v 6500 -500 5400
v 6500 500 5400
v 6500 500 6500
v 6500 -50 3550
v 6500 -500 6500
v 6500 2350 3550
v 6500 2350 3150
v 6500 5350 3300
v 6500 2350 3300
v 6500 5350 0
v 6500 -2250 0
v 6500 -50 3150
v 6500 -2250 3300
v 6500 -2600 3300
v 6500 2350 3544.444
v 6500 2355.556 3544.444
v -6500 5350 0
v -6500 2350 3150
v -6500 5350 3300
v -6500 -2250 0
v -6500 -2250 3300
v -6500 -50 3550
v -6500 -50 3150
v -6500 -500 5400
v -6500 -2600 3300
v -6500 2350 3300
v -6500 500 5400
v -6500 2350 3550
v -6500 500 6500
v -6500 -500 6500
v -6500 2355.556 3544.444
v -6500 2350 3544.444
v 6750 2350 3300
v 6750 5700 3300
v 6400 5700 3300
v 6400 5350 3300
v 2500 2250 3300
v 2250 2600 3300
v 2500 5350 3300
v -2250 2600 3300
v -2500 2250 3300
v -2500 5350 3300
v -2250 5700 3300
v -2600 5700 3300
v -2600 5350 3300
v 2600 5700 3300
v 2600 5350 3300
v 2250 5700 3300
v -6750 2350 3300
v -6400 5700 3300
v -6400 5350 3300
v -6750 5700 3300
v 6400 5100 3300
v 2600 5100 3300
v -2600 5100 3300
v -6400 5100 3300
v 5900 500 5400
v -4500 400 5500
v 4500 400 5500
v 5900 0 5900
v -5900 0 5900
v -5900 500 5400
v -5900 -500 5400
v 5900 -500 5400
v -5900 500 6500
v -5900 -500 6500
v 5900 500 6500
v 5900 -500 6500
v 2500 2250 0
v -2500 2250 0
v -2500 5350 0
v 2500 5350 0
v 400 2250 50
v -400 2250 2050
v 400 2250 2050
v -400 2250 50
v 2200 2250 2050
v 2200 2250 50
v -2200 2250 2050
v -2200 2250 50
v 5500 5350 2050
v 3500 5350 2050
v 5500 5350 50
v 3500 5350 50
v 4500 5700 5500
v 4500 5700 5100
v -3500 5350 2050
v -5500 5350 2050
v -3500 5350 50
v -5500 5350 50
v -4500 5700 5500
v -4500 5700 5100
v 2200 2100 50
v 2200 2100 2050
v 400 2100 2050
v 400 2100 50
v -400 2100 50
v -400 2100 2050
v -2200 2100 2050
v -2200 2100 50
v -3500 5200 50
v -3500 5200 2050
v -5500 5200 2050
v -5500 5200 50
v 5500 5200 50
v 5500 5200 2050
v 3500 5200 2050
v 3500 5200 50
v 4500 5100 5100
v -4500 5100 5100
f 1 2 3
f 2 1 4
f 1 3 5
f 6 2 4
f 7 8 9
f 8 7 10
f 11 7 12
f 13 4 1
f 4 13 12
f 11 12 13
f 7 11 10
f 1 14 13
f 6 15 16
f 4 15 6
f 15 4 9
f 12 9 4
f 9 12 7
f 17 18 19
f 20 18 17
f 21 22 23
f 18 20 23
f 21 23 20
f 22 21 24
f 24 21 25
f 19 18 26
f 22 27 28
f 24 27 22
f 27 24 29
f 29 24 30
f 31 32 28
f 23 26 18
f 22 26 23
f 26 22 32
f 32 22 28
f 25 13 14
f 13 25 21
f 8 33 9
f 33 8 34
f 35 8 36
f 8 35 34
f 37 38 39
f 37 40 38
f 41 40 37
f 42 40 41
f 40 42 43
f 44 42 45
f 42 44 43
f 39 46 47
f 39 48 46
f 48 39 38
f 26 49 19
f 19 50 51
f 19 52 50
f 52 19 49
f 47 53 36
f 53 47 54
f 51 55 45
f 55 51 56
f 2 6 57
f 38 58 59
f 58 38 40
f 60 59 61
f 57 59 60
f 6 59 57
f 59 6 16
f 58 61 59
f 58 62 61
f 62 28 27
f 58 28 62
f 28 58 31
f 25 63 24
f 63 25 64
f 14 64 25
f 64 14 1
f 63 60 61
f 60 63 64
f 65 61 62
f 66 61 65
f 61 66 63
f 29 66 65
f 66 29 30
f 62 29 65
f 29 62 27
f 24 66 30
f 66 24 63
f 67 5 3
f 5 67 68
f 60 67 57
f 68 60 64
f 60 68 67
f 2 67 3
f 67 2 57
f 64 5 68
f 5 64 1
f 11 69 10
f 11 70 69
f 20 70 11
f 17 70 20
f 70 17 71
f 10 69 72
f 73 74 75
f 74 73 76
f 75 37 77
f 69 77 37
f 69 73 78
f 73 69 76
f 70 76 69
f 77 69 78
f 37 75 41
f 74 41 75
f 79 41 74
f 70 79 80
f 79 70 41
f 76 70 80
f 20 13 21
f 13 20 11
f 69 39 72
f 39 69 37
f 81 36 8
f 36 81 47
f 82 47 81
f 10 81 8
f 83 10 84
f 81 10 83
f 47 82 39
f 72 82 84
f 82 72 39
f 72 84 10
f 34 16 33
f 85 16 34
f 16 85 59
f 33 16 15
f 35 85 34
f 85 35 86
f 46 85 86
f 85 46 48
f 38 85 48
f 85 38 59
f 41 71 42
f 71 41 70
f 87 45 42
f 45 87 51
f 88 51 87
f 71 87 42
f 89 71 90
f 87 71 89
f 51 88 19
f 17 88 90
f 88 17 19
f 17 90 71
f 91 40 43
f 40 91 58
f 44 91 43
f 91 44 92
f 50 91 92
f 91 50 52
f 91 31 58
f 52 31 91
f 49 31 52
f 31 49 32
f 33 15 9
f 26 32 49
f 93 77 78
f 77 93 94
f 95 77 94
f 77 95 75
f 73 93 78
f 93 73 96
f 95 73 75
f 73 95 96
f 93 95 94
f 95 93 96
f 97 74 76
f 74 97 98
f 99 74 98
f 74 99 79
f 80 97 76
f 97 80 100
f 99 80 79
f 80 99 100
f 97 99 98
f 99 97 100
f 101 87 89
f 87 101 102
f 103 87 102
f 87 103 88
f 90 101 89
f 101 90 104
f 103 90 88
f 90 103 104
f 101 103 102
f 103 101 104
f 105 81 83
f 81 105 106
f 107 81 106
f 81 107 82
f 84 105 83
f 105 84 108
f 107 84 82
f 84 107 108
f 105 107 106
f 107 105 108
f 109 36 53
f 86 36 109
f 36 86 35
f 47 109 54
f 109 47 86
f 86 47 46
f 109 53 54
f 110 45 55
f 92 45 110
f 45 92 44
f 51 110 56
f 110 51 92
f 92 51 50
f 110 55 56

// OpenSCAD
/**
 * Belz house
 * Use # before difference object to see tham.
 */

module prism(l, w, h) {
   polyhedron(points=[[0,0,0],   // 0
                      [l,0,0],   // 1
                      [l,w,0],   // 2
                      [0,w,0],   // 3
                      [0,w / 2,h],   // 4
                      [l,w / 2,h]],  // 5
              faces=[[0,1,2,3],         // bottom
                     [5,4,3,2],         // One face (top)
                     [0,4,5,1],         // Other face (top)
                     [0,3,4],           // One side
                     [5,2,1]]);         // Other side
}

extra_roof = 0; // 500;

module mainRoof() {
  union() {
    translate([-extra_roof / 2, 0, 0]) {
      prism(13000 + extra_roof, 5200, 2600);
    }
    translate([0, (5200 - 1000) / 2, 2100]) {
      chimney();
    }
    translate([13000 - 600, (5200 - 1000) / 2, 2100]) {
      chimney();
    }
  }
}

module chimney() {
  // color("red") {
  cube(size=[600, 1000, 1100], center=false);
  // }
}

module pignon() {
  union() {
    cube(size=[4000, 3100, 3300], center=false);
    translate([2000 + (4500 / 2), -(4500 / 2), 3300]) {
      rotate([0, 0, 90]) {
        prism(5700, 4500, 2200);
      }
    }
  }
}

module belzHouse() {
  difference() {
    union() {
      union() {
        translate([-13000 / 2, -4500 / 2, 0]) {
          cube(size=[13000, 4500, 3300], center=false); // Main part
        }
        translate([-13000 / 2, -5200 / 2, 3300]) {
          mainRoof();
        }
      }
      // Pignon Ouest
      translate([(13000 / 2) - 4000, (4500 / 2), 0]) {
        pignon();
      }
      // Pignon Est
      translate([( - 13000 / 2) + 00, (4500 / 2), 0]) {
        pignon();
      }
    }
    // Windows and So.
    translate([6500, -50, 3150]) {   // Roof, West
      cube(size=[500, 2400, 400], center=false);
    }
    translate([-7000, -50, 3150]) {  // Roof, East
      cube(size=[500, 2400, 400], center=false);
    }
    translate([400, 2100, 50]) { // Main West
      color("blue") {
        cube(size=[1800, 500, 2000], center=false);
      }
    }
    translate([-2200, 2100, 50]) { // Main East
      color("green") {
        cube(size=[1800, 500, 2000], center=false);
      }
    }
    translate([-5500, 5200, 50]) { // East Window
      color("red") {
        cube(size=[2000, 500, 2000], center=false);
      }
    }
    translate([3500, 5200, 50]) { // Garage door
      color("red") {
        cube(size=[2000, 500, 2000], center=false);
      }
    }
    translate([6400, 5100, 3300]) { // Top Front Window,  west
      rotate([0, 0, 90]) {
        color("red") {
          prism(600, 3800, 1800);
        }
      }
    }
    translate([-2600, 5100, 3300]) { // Top Front Window,  east
      rotate([0, 0, 90]) {
        color("red") {
          prism(600, 3800, 1800);
        }
      }
    }
  }
}

belzHouse();
